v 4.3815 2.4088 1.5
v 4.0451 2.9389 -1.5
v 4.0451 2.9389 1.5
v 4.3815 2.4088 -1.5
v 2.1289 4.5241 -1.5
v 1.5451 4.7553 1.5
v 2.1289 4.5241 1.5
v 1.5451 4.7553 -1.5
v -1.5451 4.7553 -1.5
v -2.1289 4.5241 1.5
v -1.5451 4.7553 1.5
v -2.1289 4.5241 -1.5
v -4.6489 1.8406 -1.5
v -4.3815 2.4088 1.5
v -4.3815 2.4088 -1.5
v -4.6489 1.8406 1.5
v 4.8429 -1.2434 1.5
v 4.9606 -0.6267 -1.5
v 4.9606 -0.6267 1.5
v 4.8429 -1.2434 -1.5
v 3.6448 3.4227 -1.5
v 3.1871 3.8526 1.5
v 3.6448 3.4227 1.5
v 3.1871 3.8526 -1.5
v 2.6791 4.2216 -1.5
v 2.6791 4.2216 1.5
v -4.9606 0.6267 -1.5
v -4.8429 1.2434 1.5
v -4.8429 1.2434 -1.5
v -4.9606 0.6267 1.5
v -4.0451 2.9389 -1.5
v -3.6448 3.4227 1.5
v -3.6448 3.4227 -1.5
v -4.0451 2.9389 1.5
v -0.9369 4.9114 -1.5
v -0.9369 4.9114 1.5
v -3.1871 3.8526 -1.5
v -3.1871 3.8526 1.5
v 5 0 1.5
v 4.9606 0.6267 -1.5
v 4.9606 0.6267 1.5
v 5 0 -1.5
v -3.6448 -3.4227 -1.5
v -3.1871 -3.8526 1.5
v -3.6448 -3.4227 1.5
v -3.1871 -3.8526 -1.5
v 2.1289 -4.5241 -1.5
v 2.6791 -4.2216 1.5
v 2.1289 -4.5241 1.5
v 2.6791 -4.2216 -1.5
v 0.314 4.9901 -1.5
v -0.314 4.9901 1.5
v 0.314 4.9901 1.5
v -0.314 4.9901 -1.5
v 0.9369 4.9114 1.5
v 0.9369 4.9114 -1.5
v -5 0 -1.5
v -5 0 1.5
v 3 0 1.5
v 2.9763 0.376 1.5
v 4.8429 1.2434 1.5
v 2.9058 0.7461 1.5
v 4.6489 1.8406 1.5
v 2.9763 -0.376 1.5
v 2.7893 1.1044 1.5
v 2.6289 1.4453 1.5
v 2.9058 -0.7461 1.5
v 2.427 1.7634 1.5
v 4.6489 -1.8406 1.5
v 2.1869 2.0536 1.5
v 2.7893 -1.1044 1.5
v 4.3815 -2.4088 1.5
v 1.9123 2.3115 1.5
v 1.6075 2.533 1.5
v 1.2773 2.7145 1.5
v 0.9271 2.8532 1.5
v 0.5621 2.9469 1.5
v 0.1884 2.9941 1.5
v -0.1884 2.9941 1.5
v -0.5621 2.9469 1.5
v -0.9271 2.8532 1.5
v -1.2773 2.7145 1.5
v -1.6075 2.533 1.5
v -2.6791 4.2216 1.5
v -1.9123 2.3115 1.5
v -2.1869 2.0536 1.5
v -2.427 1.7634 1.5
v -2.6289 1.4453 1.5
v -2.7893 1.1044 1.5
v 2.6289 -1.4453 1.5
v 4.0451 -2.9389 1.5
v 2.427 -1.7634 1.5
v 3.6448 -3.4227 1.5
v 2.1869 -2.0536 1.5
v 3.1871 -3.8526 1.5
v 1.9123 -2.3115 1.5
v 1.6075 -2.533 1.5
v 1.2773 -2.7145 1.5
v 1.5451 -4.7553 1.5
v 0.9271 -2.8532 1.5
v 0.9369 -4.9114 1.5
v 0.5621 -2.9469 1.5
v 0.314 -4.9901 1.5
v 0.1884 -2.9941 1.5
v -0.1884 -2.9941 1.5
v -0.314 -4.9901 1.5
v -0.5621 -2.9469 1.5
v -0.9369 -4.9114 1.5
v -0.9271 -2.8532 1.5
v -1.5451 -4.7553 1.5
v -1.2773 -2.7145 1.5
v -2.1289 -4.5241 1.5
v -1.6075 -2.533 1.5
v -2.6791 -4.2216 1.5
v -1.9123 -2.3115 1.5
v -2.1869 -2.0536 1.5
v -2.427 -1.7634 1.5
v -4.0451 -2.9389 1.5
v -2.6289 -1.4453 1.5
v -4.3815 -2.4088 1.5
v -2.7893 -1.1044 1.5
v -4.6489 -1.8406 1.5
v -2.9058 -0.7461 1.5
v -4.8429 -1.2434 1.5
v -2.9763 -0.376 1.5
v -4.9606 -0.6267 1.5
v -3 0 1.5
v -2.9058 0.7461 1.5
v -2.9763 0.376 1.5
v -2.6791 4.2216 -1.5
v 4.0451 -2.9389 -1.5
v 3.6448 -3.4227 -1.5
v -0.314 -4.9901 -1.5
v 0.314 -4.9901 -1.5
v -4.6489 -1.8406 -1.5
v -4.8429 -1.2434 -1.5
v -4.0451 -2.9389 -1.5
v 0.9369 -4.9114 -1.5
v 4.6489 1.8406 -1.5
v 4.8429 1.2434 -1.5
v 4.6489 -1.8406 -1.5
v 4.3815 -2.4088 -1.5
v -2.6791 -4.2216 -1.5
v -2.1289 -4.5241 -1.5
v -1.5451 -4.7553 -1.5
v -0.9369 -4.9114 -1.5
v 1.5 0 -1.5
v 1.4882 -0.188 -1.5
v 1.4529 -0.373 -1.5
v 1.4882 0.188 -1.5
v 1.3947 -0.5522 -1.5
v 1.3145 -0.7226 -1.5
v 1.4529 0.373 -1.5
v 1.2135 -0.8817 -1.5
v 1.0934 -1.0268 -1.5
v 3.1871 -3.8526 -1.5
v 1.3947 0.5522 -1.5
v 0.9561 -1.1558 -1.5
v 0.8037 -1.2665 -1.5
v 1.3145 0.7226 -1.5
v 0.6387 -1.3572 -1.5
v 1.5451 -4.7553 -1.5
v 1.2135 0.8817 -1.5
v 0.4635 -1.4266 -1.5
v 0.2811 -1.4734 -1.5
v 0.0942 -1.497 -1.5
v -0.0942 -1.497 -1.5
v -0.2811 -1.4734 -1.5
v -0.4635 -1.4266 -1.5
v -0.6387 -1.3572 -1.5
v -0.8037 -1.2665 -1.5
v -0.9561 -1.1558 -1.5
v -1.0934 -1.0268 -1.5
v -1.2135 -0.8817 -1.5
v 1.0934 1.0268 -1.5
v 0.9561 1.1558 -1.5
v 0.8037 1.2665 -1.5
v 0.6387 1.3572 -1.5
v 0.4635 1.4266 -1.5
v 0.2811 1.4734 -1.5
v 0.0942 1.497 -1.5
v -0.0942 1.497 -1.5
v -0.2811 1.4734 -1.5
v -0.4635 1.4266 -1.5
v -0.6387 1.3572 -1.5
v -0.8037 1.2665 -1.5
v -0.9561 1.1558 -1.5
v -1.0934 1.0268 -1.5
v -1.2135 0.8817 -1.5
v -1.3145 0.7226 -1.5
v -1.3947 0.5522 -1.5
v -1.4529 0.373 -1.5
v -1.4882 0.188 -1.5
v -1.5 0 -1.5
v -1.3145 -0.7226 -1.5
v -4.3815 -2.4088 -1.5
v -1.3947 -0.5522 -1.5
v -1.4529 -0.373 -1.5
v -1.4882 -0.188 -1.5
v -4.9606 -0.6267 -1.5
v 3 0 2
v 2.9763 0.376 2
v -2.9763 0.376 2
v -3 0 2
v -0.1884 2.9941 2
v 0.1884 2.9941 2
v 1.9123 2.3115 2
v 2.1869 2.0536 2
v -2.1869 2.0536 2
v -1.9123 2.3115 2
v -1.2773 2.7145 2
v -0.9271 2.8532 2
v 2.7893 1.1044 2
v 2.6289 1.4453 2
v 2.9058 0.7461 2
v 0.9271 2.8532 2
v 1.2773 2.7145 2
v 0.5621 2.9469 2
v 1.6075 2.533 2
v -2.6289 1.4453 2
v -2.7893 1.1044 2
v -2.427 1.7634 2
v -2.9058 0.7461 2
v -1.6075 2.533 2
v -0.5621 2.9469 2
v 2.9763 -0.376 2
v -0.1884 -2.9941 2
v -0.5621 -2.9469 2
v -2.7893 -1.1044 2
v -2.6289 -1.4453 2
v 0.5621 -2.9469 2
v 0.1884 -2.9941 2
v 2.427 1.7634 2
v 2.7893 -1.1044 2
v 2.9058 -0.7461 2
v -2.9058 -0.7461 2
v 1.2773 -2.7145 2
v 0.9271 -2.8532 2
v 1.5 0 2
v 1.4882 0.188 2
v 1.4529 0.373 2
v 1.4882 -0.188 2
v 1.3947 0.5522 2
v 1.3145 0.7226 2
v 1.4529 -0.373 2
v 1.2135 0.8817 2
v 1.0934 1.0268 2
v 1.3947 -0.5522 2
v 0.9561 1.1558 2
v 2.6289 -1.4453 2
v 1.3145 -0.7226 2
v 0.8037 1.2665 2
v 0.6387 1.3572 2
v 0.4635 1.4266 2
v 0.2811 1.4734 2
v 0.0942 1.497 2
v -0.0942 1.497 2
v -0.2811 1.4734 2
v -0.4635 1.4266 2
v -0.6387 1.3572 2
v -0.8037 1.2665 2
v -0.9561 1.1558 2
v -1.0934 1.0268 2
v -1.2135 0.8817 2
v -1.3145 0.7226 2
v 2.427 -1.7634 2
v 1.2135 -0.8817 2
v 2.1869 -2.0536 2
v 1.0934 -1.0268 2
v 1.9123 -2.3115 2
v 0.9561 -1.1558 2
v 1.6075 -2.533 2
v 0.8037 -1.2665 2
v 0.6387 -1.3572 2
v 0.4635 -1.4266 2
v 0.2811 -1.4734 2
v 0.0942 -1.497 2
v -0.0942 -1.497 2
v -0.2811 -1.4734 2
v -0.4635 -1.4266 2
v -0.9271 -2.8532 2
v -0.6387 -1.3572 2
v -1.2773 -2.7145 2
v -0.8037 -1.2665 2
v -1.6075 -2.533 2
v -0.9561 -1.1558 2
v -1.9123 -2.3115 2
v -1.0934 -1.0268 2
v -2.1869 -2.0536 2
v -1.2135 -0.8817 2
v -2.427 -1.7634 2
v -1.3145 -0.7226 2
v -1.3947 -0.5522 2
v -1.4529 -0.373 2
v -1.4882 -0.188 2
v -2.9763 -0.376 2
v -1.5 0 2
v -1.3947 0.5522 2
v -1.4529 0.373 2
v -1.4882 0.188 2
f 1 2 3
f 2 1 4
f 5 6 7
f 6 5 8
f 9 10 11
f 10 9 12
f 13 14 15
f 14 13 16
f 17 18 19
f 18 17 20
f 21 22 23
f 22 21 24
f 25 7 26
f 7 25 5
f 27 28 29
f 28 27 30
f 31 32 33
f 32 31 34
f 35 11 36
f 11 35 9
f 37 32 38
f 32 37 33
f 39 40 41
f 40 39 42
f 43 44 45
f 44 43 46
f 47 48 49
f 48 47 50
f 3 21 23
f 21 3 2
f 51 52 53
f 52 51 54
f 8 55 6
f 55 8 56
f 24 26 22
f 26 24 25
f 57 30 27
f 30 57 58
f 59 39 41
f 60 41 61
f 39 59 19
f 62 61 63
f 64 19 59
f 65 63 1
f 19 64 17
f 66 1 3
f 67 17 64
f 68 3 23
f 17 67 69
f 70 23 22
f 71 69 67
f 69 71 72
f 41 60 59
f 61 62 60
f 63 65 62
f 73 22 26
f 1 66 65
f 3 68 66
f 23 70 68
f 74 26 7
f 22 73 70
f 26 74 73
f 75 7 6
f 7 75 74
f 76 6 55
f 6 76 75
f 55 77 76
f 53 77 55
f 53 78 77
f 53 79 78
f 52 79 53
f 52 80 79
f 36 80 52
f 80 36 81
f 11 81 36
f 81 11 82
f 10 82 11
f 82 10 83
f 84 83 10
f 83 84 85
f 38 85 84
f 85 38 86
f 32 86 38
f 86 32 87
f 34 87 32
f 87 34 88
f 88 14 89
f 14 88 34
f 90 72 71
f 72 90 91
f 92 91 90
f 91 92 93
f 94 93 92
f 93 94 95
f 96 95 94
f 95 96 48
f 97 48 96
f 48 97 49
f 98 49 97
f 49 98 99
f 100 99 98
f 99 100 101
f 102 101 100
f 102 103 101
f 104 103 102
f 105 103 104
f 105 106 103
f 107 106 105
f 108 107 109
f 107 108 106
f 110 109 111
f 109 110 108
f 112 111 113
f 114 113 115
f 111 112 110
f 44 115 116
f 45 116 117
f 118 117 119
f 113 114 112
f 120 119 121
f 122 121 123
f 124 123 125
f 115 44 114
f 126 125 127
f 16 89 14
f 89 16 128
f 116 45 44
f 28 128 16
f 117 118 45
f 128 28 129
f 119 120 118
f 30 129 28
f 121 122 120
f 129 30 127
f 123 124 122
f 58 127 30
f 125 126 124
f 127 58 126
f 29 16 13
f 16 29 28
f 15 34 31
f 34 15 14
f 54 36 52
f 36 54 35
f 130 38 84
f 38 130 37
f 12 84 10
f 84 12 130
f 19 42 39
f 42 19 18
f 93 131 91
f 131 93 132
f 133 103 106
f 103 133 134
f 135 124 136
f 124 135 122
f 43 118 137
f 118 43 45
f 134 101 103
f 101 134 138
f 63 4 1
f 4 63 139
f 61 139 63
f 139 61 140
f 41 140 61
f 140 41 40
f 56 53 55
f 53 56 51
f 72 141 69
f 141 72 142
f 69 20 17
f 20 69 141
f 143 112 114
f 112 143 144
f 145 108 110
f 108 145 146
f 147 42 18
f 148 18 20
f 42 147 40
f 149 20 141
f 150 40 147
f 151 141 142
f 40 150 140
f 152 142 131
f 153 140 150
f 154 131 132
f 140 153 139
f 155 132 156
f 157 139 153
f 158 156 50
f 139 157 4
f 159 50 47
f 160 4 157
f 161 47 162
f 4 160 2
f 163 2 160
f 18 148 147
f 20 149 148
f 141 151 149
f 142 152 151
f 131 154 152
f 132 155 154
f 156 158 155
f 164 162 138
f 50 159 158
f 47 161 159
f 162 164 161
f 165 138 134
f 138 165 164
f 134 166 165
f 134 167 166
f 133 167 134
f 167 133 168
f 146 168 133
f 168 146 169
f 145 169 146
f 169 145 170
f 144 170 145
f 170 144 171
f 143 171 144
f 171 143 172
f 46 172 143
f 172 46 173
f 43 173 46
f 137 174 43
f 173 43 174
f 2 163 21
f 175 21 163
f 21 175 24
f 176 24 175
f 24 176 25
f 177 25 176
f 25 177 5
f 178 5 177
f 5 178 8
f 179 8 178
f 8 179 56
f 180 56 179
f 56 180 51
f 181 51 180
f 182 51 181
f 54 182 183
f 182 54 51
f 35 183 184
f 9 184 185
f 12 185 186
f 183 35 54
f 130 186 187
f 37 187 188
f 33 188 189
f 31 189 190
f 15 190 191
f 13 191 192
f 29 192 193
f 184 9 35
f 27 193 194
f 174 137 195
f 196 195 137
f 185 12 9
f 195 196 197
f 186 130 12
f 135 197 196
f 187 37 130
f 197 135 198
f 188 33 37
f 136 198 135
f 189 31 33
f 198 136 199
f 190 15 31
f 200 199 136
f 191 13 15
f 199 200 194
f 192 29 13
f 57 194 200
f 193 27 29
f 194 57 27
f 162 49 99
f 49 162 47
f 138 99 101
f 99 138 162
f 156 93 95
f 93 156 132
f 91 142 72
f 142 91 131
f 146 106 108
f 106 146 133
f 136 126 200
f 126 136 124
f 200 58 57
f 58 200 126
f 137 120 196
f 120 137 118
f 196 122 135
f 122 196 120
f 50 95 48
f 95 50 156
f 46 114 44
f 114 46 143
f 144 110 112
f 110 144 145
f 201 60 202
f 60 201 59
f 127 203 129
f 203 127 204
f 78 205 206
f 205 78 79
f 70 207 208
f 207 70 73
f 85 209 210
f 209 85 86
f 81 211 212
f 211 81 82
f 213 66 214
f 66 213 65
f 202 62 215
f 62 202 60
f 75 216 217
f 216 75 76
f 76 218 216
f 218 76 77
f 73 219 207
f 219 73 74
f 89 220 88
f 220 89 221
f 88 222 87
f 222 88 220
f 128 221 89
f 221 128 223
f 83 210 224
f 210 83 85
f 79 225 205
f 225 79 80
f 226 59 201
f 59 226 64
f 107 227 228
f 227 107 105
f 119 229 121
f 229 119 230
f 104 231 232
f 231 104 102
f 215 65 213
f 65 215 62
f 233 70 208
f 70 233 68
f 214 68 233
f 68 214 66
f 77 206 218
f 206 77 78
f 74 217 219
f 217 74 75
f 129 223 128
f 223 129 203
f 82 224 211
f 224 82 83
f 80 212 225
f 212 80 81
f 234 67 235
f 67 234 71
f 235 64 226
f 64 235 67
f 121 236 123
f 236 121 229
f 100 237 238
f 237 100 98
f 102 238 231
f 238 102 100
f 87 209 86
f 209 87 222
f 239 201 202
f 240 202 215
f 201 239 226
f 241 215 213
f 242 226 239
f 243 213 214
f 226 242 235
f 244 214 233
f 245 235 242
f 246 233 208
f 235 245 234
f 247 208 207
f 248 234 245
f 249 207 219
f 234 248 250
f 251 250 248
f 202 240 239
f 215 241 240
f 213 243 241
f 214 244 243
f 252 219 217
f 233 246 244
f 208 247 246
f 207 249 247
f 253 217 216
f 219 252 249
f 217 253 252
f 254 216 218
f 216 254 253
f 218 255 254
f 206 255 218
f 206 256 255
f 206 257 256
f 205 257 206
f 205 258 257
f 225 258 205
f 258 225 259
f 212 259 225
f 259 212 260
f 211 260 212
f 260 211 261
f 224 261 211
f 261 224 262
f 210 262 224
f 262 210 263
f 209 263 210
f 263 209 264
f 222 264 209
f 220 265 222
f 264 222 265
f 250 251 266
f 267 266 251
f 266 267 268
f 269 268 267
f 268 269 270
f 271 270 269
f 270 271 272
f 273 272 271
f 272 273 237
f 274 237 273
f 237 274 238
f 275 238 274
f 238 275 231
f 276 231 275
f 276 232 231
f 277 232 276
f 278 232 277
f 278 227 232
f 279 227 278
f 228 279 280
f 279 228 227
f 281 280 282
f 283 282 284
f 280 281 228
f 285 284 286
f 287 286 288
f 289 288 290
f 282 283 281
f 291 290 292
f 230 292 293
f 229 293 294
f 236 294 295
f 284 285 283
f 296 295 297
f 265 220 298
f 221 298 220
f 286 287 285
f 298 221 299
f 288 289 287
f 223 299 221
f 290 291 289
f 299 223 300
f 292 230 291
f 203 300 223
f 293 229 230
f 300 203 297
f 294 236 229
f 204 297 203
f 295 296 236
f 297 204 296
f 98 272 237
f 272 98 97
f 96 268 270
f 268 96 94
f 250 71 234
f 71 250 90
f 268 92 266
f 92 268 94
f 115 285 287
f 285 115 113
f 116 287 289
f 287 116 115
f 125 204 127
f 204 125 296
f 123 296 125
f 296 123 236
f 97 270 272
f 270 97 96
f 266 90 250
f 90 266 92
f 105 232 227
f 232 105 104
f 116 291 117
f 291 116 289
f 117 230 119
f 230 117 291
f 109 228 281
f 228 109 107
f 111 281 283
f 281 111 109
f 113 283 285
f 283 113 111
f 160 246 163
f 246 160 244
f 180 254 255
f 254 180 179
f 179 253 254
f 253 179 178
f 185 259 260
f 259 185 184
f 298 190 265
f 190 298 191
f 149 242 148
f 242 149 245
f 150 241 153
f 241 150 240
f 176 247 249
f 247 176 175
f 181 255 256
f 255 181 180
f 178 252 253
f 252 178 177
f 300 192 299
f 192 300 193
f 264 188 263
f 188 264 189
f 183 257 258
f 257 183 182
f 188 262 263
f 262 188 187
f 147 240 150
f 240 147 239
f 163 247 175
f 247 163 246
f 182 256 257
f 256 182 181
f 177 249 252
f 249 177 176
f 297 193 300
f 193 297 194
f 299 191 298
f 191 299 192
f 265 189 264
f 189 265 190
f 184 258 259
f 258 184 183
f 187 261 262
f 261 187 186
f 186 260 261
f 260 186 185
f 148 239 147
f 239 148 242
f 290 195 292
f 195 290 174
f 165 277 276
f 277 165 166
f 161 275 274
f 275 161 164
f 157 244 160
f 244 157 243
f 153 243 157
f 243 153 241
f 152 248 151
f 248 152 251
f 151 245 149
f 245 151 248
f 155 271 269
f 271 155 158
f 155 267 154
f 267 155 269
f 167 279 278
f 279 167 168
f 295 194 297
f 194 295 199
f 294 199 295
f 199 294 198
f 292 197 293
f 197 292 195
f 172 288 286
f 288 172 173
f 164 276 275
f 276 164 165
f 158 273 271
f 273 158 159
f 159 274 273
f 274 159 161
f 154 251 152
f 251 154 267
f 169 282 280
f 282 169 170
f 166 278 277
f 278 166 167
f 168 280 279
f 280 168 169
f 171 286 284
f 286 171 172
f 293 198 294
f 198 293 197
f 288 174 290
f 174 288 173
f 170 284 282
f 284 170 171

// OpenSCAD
$fn = 50;


difference() {
	union() {
		translate(v = [0, 0, -1.5000000000]) {
			cylinder(h = 3, r = 5.0000000000);
		}
		translate(v = [0, 0, -1.5000000000]) {
			cylinder(h = 3.5000000000, r = 3.0000000000);
		}
	}
	union() {
		translate(v = [0, 0, -50.0000000000]) {
			cylinder(h = 100, r = 1.5000000000);
		}
	}
}
